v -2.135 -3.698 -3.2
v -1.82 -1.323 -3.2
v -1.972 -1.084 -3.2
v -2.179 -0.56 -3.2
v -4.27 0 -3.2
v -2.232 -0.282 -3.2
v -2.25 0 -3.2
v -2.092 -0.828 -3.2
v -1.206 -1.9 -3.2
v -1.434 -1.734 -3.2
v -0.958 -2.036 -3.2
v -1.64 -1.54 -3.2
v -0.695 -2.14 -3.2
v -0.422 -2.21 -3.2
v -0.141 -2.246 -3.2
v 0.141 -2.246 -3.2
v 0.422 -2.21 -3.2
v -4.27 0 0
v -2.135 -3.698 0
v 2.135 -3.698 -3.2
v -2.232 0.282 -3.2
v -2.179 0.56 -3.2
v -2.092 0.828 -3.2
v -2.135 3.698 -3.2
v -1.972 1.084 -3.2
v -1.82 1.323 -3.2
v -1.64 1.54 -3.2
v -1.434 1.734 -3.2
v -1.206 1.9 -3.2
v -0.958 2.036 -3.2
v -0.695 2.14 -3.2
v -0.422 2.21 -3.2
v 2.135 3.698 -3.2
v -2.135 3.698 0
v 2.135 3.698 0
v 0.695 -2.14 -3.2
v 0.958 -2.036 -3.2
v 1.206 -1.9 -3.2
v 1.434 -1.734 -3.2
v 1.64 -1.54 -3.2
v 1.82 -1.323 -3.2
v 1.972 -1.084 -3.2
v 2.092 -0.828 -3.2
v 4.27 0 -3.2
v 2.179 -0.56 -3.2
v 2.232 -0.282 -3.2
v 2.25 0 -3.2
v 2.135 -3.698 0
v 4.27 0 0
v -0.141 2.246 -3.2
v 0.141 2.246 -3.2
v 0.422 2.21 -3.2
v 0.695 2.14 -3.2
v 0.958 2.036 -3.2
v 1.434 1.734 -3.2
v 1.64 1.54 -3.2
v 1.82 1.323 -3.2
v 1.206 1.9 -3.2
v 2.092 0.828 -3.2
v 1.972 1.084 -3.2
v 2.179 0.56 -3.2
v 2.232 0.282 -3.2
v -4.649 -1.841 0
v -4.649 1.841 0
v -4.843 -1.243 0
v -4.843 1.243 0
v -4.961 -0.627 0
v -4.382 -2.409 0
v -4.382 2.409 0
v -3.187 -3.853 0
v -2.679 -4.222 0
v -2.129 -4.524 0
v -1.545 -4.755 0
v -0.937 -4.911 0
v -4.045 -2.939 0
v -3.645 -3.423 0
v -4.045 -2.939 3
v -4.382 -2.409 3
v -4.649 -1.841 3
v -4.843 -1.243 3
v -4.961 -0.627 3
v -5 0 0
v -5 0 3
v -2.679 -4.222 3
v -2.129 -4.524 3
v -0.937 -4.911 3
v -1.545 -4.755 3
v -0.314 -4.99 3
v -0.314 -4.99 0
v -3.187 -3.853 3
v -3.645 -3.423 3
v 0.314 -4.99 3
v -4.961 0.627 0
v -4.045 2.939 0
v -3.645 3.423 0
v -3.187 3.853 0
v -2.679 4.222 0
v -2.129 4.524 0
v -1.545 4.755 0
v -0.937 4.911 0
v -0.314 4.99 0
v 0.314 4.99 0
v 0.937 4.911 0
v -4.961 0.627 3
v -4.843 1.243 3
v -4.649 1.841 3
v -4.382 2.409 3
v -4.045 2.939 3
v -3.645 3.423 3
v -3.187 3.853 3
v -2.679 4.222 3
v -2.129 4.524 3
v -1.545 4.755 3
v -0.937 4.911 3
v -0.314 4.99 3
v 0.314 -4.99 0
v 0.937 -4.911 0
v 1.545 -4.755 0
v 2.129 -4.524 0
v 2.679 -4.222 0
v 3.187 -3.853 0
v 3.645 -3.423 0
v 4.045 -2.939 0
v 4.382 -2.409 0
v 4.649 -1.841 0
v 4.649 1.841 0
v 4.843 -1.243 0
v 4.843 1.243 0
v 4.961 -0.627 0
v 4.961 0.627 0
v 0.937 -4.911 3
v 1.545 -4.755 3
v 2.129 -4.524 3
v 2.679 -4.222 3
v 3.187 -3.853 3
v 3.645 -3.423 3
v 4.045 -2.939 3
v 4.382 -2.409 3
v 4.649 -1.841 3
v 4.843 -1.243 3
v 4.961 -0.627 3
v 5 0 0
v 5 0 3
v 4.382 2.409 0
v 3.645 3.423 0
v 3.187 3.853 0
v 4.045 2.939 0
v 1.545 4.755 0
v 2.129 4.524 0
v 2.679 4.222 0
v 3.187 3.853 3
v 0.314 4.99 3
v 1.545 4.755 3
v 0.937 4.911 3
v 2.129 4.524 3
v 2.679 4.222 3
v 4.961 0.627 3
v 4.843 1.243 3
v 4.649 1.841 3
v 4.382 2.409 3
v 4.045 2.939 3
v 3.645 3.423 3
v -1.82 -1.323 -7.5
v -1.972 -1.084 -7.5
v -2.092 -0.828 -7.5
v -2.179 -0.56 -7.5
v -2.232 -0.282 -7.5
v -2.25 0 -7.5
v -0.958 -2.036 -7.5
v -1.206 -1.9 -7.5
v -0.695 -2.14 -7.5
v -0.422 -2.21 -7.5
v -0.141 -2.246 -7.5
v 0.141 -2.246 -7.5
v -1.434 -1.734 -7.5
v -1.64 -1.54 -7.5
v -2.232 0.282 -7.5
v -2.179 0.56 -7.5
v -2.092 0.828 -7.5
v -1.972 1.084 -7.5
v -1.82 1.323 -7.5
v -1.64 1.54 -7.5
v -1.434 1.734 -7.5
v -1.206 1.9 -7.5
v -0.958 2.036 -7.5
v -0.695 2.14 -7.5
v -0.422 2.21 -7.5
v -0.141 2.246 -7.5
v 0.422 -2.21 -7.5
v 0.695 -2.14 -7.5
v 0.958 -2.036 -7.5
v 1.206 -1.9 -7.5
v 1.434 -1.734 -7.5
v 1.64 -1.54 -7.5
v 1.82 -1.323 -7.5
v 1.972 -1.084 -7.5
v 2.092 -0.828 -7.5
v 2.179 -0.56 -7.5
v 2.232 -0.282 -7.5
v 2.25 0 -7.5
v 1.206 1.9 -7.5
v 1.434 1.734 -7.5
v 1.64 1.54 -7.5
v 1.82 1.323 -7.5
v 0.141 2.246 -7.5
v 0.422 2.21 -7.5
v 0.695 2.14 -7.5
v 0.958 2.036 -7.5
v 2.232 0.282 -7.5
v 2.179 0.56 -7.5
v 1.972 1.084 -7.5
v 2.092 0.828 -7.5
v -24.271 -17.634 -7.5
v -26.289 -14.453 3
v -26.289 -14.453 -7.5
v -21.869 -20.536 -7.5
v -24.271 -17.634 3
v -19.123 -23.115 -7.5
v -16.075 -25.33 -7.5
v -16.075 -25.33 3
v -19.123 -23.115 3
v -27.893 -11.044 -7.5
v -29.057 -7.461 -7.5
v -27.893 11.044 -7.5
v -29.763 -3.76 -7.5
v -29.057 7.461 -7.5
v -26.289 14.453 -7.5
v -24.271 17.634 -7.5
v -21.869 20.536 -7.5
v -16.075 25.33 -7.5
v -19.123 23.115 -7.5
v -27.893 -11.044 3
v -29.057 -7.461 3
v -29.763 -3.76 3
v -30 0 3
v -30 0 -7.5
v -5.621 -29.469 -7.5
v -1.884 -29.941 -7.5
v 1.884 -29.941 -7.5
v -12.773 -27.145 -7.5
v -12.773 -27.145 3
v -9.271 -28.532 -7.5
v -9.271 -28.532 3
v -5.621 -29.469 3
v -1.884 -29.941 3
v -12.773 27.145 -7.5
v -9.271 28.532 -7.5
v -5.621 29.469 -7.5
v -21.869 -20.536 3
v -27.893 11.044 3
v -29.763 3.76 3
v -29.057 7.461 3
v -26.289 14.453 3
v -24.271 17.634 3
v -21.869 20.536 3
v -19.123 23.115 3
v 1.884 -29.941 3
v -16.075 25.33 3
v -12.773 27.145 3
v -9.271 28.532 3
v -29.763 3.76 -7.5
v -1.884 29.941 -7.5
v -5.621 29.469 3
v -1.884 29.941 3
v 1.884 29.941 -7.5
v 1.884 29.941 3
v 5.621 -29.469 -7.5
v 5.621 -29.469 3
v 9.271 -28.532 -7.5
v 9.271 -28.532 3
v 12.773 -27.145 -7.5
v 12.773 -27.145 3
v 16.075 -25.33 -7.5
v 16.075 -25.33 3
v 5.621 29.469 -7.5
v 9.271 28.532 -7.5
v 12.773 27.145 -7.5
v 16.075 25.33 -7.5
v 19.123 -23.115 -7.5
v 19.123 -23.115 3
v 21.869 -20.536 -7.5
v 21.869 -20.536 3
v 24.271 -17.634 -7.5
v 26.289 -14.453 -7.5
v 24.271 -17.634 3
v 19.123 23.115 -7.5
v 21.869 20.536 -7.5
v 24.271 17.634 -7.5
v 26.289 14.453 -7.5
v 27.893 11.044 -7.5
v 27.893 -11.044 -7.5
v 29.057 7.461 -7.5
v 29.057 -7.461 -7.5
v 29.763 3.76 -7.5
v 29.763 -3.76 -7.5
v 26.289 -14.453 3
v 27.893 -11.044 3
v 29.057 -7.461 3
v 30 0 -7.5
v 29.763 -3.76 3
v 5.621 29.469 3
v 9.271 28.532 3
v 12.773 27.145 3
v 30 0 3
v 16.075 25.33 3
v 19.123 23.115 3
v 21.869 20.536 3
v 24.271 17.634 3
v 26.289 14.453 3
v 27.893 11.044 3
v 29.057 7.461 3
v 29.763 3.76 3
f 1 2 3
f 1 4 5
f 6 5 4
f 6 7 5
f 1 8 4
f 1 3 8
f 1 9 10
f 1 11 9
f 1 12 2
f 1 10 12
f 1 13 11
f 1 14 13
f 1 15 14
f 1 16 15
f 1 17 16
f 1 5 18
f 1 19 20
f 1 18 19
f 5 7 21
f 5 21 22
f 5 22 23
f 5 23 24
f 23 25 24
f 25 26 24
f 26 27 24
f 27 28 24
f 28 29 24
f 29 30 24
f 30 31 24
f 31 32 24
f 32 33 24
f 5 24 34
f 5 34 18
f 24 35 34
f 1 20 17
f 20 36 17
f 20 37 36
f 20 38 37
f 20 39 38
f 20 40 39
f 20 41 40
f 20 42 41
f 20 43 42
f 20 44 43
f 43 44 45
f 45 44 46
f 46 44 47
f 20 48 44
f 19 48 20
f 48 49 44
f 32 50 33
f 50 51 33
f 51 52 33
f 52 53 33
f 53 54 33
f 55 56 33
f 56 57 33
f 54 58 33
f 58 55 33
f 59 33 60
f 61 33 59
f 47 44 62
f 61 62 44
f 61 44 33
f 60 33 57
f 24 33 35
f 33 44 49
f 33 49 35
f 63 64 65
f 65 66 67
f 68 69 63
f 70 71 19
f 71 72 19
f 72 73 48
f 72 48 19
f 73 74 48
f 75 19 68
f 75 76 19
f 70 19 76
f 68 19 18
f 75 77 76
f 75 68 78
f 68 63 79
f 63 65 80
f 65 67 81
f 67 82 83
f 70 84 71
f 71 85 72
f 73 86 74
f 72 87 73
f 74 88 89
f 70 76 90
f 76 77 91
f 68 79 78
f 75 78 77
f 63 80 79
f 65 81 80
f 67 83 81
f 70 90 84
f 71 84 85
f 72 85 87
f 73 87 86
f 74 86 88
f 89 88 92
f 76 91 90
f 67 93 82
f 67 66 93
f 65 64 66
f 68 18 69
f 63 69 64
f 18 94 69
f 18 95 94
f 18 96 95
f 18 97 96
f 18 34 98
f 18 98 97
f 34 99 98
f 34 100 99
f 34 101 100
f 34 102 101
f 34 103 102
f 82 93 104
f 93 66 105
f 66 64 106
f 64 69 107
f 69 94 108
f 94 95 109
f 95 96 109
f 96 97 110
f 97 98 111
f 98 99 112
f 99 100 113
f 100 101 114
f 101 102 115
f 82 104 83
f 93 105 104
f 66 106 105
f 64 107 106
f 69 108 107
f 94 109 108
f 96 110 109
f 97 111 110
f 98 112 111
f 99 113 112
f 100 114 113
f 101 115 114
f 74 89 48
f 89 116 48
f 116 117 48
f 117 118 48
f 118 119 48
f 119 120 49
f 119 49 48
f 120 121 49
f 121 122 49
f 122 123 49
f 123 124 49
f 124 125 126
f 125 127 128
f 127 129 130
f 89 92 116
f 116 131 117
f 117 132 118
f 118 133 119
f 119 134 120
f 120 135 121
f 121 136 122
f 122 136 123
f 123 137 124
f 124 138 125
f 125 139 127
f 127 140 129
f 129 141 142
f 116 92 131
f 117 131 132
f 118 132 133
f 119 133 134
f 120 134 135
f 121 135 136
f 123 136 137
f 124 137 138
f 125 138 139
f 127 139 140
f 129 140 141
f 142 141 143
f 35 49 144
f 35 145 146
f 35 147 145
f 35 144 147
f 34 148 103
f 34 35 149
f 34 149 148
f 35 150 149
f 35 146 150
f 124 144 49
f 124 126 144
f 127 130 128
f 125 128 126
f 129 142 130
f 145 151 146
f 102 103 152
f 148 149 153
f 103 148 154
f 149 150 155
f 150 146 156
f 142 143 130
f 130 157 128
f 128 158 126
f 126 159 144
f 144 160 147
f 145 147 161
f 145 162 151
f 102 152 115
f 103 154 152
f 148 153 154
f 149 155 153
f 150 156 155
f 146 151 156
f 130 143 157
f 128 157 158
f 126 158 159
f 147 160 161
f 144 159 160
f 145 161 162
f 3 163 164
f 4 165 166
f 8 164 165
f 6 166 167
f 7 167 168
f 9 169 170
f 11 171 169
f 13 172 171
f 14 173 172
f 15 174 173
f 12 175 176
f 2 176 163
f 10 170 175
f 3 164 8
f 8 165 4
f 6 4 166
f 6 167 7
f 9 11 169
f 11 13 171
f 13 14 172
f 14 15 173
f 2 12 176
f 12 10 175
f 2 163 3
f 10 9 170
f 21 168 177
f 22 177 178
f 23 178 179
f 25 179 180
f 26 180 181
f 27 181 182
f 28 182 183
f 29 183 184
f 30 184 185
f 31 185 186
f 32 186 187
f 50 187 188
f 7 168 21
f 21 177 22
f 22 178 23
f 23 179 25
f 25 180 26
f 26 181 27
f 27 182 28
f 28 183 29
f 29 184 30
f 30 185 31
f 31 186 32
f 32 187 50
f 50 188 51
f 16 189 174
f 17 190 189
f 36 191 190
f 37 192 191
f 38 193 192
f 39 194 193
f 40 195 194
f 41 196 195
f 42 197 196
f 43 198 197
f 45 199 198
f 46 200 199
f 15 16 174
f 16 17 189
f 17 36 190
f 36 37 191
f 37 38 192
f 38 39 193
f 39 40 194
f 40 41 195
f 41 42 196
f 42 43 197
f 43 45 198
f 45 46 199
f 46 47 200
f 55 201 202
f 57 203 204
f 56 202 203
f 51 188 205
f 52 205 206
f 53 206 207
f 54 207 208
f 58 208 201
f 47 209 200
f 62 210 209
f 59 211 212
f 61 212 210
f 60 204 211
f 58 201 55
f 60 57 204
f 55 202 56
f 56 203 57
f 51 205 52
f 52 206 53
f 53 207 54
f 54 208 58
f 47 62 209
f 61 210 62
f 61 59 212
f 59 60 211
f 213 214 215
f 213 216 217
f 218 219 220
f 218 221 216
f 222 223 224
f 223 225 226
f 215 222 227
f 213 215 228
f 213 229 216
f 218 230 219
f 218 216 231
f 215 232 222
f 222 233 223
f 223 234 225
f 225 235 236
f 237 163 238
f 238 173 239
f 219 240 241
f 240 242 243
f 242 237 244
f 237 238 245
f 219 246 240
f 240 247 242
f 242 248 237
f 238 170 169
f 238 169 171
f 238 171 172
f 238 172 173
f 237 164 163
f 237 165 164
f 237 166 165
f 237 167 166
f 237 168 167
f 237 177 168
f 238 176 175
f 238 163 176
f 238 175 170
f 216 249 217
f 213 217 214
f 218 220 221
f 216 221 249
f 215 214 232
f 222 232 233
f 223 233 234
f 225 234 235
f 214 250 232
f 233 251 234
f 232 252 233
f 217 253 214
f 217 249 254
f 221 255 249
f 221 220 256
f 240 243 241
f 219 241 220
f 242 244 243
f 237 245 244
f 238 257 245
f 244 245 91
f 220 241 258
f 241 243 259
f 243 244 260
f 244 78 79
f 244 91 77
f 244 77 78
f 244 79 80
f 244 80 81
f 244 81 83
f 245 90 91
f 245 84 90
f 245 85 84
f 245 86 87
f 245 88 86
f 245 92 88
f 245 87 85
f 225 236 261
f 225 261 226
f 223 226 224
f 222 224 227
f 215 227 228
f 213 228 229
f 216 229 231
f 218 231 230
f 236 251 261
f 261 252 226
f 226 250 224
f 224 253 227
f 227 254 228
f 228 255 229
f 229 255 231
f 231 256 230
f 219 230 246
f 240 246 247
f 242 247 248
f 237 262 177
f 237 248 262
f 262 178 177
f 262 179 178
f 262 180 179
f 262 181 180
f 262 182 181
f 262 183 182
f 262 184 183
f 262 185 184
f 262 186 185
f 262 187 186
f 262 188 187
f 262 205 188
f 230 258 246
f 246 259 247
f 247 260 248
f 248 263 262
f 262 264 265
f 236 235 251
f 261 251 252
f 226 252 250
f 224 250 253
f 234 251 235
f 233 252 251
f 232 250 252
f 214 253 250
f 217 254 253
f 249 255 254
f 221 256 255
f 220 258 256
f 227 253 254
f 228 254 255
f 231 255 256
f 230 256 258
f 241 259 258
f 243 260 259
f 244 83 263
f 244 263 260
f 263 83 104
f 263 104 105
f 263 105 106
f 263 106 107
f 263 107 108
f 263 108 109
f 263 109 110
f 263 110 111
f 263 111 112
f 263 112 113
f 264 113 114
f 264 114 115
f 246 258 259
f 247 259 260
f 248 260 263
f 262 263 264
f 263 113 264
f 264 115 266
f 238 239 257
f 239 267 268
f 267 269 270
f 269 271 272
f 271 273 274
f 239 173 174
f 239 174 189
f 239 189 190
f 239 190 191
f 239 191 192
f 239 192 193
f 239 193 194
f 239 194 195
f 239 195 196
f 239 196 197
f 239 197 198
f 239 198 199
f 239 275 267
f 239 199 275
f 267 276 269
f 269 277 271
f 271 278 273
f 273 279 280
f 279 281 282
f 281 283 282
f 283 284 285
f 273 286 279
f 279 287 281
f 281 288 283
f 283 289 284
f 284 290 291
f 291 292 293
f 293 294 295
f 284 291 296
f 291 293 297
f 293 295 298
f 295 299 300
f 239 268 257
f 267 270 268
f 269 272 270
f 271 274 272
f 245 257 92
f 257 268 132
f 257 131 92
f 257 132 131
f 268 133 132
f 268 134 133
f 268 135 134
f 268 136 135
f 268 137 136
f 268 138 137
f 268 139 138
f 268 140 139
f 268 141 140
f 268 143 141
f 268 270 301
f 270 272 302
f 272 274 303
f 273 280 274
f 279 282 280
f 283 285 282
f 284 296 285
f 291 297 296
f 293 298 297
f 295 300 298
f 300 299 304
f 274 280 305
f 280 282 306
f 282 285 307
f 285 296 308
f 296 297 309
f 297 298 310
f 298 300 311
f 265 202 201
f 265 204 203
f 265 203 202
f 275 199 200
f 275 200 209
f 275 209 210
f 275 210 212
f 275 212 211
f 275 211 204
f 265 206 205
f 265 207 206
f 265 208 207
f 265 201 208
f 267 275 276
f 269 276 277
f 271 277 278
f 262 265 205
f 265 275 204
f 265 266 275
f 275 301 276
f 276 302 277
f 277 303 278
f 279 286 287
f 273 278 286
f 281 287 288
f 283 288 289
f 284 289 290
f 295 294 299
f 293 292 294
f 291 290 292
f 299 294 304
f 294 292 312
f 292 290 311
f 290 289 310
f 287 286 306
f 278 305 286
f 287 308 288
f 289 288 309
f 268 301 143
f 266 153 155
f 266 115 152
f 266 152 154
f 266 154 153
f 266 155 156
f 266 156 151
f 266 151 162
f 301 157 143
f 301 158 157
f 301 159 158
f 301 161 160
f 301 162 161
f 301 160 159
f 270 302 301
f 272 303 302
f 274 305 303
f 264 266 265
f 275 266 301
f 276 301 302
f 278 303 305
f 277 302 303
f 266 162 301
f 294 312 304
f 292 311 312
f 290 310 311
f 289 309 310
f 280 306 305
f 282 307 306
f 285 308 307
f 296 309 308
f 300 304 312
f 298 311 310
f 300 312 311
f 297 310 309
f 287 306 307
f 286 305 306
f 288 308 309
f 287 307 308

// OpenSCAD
$fn = 50;

difference() {
	union() {
		translate(v = [0, 0, -7.5]) {
			cylinder(h = 10.5, r = 30.0);
		}
	}
	union() {
		translate(v = [0, 0, 0]) {
			rotate(a = [0, 0, 0]) {
				difference() {
					union() {
						translate(v = [0, 0, -3.2]) {
							linear_extrude(height = 3.2) {
								polygon(points = [[4.2698, 0.0], [2.1349000000000005, 3.697755269078796], [-2.134899999999999, 3.6977552690787965], [-4.2698, 5.228996902999369e-16], [-2.134900000000002, -3.6977552690787956], [2.1348999999999974, -3.697755269078798]]);
							}
						}
					}
					union();
				}
			}
		}
		#cylinder(h = 3, r = 5.0);
		#translate(v = [0, 0, -100.0]) {
			cylinder(h = 200, r = 2.25);
		}
	}
}
